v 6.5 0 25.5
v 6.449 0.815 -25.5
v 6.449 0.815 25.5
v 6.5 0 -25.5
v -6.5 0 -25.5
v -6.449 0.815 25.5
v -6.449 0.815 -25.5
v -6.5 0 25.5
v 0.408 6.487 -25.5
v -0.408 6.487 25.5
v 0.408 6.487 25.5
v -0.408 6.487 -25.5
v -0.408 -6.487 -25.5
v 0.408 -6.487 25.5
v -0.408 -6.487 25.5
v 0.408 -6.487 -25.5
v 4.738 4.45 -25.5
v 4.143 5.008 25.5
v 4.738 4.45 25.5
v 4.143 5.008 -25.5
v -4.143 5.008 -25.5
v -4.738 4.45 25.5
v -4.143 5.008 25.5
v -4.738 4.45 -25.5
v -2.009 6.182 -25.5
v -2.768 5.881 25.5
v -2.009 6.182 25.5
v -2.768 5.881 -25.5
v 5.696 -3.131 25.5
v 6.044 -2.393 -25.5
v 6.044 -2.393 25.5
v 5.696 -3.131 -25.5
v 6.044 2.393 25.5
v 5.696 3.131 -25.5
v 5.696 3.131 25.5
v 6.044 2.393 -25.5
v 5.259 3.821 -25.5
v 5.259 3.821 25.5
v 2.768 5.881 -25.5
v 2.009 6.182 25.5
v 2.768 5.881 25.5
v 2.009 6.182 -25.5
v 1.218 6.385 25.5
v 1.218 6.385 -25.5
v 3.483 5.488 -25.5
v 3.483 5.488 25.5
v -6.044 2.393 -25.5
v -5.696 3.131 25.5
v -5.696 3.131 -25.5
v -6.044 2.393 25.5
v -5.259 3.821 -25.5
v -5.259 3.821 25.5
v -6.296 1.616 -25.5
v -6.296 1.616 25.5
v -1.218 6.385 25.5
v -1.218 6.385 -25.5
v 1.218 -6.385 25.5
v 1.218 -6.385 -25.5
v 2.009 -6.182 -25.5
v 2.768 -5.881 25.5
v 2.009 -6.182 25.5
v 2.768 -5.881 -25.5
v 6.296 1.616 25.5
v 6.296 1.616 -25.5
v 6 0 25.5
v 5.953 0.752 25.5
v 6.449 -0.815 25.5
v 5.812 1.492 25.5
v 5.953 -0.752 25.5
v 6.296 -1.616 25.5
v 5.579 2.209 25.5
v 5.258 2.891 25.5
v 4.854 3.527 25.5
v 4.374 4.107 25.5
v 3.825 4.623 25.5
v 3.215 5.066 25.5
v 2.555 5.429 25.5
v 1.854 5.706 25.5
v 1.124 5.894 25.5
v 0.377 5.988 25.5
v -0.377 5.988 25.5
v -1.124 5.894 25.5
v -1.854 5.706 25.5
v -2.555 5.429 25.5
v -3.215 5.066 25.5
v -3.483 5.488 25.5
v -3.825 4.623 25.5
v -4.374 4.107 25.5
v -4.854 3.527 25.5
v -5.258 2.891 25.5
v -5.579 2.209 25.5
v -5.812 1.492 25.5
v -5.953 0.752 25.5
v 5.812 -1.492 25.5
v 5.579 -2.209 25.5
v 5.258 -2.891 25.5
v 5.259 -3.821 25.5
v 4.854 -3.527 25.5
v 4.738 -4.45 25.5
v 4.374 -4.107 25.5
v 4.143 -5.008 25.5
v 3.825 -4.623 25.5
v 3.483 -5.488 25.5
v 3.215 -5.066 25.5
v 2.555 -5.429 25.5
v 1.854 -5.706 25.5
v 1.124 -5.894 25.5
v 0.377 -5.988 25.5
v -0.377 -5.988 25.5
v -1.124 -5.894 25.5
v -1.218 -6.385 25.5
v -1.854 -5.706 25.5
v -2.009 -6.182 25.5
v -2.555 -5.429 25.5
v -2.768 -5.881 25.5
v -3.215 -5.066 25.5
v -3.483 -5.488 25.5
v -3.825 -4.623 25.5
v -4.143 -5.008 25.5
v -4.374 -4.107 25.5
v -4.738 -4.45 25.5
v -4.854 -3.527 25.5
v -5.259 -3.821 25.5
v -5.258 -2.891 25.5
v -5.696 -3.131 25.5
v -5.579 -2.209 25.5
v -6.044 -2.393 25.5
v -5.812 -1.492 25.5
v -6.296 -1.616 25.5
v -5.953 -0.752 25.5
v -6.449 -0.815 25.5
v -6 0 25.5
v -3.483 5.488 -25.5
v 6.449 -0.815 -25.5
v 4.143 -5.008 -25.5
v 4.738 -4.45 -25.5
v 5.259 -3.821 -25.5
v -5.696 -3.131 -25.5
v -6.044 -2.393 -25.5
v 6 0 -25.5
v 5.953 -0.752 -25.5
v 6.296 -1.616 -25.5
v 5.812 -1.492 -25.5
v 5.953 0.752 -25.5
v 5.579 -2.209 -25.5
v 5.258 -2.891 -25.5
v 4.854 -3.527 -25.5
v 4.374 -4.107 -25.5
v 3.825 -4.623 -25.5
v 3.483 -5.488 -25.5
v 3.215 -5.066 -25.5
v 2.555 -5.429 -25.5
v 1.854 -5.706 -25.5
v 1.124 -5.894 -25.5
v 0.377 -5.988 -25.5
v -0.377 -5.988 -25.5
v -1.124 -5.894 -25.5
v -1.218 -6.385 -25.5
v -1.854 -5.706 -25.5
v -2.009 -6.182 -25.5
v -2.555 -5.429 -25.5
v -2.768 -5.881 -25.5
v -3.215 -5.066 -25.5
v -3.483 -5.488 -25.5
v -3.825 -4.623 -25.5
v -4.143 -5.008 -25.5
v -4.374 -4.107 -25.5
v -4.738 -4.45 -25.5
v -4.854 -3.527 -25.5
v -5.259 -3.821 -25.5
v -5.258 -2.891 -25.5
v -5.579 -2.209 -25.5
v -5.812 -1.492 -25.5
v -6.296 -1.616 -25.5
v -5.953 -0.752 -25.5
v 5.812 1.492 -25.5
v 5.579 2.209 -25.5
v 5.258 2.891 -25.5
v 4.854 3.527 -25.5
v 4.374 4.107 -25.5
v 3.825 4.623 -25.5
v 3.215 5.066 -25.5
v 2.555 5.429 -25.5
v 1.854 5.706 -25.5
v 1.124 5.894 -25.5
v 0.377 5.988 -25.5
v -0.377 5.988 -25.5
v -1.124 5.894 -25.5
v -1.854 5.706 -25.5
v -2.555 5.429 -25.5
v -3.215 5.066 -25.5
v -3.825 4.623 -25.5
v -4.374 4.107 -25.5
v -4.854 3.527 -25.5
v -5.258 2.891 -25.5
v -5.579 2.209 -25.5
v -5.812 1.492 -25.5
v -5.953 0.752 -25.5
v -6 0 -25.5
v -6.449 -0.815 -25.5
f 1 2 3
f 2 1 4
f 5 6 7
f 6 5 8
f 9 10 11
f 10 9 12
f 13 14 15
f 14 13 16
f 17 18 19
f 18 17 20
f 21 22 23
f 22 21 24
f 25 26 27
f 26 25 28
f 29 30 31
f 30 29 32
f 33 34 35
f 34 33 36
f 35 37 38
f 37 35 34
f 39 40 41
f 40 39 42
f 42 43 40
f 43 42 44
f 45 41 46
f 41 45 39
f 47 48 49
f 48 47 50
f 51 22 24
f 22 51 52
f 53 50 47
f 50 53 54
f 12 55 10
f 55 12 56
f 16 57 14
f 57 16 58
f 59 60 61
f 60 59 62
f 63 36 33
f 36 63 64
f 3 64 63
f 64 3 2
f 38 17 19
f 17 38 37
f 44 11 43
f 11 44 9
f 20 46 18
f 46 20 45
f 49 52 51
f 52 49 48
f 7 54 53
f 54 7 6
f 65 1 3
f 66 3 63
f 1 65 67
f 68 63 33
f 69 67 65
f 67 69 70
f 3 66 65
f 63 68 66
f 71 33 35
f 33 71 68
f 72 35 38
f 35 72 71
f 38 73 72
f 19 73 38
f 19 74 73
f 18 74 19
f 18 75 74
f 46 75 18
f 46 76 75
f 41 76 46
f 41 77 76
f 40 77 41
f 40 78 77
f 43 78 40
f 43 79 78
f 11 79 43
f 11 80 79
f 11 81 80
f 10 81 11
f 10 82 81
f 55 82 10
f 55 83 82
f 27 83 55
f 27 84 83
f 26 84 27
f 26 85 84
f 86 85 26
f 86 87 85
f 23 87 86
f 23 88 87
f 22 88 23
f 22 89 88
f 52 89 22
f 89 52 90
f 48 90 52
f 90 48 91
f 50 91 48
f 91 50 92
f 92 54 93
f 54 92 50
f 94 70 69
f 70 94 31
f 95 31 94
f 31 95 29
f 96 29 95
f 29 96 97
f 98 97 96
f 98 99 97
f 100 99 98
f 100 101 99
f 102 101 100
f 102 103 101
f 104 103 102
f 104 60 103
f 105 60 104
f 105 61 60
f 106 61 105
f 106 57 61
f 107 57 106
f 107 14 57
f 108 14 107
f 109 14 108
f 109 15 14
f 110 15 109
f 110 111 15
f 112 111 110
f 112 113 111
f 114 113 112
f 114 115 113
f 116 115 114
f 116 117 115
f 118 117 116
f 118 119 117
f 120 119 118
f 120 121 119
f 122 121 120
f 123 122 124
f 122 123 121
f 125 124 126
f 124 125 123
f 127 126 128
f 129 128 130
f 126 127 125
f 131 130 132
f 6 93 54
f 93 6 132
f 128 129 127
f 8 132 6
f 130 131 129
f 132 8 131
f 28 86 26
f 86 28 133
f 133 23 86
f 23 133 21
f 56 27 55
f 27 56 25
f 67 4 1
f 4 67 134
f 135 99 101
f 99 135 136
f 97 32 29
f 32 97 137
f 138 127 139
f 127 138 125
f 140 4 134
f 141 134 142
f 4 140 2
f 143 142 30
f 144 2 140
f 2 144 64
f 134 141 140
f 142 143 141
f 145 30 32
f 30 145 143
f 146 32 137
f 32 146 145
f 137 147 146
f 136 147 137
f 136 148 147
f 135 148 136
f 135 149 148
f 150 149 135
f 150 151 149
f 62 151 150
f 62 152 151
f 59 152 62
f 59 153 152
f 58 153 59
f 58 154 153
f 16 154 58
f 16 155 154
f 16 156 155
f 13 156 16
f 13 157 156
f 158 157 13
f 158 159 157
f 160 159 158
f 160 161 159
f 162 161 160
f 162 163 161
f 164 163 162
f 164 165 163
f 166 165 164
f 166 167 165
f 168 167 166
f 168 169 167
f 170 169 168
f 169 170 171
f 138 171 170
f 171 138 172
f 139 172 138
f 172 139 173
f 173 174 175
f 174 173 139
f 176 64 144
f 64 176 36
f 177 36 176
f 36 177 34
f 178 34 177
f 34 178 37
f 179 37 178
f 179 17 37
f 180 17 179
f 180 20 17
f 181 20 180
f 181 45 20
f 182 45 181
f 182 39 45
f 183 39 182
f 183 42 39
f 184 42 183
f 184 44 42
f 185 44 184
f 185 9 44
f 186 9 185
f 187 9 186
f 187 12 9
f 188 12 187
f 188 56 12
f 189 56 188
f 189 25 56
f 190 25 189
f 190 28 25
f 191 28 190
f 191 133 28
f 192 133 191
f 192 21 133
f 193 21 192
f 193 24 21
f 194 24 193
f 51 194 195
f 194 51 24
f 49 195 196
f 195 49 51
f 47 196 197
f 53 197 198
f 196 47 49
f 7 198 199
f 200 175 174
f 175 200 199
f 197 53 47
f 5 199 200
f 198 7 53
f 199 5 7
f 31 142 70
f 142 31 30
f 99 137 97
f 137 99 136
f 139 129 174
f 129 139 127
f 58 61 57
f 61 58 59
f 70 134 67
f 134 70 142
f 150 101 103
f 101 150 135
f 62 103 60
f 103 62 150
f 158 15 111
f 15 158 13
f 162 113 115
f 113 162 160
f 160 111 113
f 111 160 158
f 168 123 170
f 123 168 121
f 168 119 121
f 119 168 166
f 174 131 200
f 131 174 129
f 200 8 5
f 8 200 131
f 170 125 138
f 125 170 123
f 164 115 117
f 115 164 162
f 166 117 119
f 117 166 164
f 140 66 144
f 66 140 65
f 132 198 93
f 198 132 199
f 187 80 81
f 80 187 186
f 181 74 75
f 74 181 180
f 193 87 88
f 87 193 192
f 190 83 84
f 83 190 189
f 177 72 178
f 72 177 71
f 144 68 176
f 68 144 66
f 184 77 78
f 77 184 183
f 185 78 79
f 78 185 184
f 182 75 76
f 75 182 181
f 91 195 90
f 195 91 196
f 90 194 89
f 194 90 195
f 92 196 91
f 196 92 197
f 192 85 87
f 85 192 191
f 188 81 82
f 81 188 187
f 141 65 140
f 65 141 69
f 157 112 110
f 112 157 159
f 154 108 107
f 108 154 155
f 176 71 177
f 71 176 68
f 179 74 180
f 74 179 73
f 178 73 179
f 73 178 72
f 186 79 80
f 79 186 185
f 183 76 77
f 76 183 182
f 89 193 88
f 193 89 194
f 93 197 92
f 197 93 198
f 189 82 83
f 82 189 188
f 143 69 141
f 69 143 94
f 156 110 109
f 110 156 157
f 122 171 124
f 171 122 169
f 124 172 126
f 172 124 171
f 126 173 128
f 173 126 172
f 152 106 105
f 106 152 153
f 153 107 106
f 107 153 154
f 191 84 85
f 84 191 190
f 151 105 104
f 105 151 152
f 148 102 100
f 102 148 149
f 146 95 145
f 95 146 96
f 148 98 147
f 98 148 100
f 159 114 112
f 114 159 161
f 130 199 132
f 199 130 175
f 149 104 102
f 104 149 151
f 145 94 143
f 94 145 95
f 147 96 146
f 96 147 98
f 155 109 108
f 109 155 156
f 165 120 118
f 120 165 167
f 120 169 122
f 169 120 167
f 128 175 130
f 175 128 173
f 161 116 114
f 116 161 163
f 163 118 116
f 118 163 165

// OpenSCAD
$fn = 50;


difference() {
	union() {
		translate(v = [0, 0, -25.5000000000]) {
			cylinder(h = 51, r = 6.5000000000);
		}
	}
	union() {
		translate(v = [0, 0, -100.0000000000]) {
			cylinder(h = 200, r = 6);
		}
	}
}
